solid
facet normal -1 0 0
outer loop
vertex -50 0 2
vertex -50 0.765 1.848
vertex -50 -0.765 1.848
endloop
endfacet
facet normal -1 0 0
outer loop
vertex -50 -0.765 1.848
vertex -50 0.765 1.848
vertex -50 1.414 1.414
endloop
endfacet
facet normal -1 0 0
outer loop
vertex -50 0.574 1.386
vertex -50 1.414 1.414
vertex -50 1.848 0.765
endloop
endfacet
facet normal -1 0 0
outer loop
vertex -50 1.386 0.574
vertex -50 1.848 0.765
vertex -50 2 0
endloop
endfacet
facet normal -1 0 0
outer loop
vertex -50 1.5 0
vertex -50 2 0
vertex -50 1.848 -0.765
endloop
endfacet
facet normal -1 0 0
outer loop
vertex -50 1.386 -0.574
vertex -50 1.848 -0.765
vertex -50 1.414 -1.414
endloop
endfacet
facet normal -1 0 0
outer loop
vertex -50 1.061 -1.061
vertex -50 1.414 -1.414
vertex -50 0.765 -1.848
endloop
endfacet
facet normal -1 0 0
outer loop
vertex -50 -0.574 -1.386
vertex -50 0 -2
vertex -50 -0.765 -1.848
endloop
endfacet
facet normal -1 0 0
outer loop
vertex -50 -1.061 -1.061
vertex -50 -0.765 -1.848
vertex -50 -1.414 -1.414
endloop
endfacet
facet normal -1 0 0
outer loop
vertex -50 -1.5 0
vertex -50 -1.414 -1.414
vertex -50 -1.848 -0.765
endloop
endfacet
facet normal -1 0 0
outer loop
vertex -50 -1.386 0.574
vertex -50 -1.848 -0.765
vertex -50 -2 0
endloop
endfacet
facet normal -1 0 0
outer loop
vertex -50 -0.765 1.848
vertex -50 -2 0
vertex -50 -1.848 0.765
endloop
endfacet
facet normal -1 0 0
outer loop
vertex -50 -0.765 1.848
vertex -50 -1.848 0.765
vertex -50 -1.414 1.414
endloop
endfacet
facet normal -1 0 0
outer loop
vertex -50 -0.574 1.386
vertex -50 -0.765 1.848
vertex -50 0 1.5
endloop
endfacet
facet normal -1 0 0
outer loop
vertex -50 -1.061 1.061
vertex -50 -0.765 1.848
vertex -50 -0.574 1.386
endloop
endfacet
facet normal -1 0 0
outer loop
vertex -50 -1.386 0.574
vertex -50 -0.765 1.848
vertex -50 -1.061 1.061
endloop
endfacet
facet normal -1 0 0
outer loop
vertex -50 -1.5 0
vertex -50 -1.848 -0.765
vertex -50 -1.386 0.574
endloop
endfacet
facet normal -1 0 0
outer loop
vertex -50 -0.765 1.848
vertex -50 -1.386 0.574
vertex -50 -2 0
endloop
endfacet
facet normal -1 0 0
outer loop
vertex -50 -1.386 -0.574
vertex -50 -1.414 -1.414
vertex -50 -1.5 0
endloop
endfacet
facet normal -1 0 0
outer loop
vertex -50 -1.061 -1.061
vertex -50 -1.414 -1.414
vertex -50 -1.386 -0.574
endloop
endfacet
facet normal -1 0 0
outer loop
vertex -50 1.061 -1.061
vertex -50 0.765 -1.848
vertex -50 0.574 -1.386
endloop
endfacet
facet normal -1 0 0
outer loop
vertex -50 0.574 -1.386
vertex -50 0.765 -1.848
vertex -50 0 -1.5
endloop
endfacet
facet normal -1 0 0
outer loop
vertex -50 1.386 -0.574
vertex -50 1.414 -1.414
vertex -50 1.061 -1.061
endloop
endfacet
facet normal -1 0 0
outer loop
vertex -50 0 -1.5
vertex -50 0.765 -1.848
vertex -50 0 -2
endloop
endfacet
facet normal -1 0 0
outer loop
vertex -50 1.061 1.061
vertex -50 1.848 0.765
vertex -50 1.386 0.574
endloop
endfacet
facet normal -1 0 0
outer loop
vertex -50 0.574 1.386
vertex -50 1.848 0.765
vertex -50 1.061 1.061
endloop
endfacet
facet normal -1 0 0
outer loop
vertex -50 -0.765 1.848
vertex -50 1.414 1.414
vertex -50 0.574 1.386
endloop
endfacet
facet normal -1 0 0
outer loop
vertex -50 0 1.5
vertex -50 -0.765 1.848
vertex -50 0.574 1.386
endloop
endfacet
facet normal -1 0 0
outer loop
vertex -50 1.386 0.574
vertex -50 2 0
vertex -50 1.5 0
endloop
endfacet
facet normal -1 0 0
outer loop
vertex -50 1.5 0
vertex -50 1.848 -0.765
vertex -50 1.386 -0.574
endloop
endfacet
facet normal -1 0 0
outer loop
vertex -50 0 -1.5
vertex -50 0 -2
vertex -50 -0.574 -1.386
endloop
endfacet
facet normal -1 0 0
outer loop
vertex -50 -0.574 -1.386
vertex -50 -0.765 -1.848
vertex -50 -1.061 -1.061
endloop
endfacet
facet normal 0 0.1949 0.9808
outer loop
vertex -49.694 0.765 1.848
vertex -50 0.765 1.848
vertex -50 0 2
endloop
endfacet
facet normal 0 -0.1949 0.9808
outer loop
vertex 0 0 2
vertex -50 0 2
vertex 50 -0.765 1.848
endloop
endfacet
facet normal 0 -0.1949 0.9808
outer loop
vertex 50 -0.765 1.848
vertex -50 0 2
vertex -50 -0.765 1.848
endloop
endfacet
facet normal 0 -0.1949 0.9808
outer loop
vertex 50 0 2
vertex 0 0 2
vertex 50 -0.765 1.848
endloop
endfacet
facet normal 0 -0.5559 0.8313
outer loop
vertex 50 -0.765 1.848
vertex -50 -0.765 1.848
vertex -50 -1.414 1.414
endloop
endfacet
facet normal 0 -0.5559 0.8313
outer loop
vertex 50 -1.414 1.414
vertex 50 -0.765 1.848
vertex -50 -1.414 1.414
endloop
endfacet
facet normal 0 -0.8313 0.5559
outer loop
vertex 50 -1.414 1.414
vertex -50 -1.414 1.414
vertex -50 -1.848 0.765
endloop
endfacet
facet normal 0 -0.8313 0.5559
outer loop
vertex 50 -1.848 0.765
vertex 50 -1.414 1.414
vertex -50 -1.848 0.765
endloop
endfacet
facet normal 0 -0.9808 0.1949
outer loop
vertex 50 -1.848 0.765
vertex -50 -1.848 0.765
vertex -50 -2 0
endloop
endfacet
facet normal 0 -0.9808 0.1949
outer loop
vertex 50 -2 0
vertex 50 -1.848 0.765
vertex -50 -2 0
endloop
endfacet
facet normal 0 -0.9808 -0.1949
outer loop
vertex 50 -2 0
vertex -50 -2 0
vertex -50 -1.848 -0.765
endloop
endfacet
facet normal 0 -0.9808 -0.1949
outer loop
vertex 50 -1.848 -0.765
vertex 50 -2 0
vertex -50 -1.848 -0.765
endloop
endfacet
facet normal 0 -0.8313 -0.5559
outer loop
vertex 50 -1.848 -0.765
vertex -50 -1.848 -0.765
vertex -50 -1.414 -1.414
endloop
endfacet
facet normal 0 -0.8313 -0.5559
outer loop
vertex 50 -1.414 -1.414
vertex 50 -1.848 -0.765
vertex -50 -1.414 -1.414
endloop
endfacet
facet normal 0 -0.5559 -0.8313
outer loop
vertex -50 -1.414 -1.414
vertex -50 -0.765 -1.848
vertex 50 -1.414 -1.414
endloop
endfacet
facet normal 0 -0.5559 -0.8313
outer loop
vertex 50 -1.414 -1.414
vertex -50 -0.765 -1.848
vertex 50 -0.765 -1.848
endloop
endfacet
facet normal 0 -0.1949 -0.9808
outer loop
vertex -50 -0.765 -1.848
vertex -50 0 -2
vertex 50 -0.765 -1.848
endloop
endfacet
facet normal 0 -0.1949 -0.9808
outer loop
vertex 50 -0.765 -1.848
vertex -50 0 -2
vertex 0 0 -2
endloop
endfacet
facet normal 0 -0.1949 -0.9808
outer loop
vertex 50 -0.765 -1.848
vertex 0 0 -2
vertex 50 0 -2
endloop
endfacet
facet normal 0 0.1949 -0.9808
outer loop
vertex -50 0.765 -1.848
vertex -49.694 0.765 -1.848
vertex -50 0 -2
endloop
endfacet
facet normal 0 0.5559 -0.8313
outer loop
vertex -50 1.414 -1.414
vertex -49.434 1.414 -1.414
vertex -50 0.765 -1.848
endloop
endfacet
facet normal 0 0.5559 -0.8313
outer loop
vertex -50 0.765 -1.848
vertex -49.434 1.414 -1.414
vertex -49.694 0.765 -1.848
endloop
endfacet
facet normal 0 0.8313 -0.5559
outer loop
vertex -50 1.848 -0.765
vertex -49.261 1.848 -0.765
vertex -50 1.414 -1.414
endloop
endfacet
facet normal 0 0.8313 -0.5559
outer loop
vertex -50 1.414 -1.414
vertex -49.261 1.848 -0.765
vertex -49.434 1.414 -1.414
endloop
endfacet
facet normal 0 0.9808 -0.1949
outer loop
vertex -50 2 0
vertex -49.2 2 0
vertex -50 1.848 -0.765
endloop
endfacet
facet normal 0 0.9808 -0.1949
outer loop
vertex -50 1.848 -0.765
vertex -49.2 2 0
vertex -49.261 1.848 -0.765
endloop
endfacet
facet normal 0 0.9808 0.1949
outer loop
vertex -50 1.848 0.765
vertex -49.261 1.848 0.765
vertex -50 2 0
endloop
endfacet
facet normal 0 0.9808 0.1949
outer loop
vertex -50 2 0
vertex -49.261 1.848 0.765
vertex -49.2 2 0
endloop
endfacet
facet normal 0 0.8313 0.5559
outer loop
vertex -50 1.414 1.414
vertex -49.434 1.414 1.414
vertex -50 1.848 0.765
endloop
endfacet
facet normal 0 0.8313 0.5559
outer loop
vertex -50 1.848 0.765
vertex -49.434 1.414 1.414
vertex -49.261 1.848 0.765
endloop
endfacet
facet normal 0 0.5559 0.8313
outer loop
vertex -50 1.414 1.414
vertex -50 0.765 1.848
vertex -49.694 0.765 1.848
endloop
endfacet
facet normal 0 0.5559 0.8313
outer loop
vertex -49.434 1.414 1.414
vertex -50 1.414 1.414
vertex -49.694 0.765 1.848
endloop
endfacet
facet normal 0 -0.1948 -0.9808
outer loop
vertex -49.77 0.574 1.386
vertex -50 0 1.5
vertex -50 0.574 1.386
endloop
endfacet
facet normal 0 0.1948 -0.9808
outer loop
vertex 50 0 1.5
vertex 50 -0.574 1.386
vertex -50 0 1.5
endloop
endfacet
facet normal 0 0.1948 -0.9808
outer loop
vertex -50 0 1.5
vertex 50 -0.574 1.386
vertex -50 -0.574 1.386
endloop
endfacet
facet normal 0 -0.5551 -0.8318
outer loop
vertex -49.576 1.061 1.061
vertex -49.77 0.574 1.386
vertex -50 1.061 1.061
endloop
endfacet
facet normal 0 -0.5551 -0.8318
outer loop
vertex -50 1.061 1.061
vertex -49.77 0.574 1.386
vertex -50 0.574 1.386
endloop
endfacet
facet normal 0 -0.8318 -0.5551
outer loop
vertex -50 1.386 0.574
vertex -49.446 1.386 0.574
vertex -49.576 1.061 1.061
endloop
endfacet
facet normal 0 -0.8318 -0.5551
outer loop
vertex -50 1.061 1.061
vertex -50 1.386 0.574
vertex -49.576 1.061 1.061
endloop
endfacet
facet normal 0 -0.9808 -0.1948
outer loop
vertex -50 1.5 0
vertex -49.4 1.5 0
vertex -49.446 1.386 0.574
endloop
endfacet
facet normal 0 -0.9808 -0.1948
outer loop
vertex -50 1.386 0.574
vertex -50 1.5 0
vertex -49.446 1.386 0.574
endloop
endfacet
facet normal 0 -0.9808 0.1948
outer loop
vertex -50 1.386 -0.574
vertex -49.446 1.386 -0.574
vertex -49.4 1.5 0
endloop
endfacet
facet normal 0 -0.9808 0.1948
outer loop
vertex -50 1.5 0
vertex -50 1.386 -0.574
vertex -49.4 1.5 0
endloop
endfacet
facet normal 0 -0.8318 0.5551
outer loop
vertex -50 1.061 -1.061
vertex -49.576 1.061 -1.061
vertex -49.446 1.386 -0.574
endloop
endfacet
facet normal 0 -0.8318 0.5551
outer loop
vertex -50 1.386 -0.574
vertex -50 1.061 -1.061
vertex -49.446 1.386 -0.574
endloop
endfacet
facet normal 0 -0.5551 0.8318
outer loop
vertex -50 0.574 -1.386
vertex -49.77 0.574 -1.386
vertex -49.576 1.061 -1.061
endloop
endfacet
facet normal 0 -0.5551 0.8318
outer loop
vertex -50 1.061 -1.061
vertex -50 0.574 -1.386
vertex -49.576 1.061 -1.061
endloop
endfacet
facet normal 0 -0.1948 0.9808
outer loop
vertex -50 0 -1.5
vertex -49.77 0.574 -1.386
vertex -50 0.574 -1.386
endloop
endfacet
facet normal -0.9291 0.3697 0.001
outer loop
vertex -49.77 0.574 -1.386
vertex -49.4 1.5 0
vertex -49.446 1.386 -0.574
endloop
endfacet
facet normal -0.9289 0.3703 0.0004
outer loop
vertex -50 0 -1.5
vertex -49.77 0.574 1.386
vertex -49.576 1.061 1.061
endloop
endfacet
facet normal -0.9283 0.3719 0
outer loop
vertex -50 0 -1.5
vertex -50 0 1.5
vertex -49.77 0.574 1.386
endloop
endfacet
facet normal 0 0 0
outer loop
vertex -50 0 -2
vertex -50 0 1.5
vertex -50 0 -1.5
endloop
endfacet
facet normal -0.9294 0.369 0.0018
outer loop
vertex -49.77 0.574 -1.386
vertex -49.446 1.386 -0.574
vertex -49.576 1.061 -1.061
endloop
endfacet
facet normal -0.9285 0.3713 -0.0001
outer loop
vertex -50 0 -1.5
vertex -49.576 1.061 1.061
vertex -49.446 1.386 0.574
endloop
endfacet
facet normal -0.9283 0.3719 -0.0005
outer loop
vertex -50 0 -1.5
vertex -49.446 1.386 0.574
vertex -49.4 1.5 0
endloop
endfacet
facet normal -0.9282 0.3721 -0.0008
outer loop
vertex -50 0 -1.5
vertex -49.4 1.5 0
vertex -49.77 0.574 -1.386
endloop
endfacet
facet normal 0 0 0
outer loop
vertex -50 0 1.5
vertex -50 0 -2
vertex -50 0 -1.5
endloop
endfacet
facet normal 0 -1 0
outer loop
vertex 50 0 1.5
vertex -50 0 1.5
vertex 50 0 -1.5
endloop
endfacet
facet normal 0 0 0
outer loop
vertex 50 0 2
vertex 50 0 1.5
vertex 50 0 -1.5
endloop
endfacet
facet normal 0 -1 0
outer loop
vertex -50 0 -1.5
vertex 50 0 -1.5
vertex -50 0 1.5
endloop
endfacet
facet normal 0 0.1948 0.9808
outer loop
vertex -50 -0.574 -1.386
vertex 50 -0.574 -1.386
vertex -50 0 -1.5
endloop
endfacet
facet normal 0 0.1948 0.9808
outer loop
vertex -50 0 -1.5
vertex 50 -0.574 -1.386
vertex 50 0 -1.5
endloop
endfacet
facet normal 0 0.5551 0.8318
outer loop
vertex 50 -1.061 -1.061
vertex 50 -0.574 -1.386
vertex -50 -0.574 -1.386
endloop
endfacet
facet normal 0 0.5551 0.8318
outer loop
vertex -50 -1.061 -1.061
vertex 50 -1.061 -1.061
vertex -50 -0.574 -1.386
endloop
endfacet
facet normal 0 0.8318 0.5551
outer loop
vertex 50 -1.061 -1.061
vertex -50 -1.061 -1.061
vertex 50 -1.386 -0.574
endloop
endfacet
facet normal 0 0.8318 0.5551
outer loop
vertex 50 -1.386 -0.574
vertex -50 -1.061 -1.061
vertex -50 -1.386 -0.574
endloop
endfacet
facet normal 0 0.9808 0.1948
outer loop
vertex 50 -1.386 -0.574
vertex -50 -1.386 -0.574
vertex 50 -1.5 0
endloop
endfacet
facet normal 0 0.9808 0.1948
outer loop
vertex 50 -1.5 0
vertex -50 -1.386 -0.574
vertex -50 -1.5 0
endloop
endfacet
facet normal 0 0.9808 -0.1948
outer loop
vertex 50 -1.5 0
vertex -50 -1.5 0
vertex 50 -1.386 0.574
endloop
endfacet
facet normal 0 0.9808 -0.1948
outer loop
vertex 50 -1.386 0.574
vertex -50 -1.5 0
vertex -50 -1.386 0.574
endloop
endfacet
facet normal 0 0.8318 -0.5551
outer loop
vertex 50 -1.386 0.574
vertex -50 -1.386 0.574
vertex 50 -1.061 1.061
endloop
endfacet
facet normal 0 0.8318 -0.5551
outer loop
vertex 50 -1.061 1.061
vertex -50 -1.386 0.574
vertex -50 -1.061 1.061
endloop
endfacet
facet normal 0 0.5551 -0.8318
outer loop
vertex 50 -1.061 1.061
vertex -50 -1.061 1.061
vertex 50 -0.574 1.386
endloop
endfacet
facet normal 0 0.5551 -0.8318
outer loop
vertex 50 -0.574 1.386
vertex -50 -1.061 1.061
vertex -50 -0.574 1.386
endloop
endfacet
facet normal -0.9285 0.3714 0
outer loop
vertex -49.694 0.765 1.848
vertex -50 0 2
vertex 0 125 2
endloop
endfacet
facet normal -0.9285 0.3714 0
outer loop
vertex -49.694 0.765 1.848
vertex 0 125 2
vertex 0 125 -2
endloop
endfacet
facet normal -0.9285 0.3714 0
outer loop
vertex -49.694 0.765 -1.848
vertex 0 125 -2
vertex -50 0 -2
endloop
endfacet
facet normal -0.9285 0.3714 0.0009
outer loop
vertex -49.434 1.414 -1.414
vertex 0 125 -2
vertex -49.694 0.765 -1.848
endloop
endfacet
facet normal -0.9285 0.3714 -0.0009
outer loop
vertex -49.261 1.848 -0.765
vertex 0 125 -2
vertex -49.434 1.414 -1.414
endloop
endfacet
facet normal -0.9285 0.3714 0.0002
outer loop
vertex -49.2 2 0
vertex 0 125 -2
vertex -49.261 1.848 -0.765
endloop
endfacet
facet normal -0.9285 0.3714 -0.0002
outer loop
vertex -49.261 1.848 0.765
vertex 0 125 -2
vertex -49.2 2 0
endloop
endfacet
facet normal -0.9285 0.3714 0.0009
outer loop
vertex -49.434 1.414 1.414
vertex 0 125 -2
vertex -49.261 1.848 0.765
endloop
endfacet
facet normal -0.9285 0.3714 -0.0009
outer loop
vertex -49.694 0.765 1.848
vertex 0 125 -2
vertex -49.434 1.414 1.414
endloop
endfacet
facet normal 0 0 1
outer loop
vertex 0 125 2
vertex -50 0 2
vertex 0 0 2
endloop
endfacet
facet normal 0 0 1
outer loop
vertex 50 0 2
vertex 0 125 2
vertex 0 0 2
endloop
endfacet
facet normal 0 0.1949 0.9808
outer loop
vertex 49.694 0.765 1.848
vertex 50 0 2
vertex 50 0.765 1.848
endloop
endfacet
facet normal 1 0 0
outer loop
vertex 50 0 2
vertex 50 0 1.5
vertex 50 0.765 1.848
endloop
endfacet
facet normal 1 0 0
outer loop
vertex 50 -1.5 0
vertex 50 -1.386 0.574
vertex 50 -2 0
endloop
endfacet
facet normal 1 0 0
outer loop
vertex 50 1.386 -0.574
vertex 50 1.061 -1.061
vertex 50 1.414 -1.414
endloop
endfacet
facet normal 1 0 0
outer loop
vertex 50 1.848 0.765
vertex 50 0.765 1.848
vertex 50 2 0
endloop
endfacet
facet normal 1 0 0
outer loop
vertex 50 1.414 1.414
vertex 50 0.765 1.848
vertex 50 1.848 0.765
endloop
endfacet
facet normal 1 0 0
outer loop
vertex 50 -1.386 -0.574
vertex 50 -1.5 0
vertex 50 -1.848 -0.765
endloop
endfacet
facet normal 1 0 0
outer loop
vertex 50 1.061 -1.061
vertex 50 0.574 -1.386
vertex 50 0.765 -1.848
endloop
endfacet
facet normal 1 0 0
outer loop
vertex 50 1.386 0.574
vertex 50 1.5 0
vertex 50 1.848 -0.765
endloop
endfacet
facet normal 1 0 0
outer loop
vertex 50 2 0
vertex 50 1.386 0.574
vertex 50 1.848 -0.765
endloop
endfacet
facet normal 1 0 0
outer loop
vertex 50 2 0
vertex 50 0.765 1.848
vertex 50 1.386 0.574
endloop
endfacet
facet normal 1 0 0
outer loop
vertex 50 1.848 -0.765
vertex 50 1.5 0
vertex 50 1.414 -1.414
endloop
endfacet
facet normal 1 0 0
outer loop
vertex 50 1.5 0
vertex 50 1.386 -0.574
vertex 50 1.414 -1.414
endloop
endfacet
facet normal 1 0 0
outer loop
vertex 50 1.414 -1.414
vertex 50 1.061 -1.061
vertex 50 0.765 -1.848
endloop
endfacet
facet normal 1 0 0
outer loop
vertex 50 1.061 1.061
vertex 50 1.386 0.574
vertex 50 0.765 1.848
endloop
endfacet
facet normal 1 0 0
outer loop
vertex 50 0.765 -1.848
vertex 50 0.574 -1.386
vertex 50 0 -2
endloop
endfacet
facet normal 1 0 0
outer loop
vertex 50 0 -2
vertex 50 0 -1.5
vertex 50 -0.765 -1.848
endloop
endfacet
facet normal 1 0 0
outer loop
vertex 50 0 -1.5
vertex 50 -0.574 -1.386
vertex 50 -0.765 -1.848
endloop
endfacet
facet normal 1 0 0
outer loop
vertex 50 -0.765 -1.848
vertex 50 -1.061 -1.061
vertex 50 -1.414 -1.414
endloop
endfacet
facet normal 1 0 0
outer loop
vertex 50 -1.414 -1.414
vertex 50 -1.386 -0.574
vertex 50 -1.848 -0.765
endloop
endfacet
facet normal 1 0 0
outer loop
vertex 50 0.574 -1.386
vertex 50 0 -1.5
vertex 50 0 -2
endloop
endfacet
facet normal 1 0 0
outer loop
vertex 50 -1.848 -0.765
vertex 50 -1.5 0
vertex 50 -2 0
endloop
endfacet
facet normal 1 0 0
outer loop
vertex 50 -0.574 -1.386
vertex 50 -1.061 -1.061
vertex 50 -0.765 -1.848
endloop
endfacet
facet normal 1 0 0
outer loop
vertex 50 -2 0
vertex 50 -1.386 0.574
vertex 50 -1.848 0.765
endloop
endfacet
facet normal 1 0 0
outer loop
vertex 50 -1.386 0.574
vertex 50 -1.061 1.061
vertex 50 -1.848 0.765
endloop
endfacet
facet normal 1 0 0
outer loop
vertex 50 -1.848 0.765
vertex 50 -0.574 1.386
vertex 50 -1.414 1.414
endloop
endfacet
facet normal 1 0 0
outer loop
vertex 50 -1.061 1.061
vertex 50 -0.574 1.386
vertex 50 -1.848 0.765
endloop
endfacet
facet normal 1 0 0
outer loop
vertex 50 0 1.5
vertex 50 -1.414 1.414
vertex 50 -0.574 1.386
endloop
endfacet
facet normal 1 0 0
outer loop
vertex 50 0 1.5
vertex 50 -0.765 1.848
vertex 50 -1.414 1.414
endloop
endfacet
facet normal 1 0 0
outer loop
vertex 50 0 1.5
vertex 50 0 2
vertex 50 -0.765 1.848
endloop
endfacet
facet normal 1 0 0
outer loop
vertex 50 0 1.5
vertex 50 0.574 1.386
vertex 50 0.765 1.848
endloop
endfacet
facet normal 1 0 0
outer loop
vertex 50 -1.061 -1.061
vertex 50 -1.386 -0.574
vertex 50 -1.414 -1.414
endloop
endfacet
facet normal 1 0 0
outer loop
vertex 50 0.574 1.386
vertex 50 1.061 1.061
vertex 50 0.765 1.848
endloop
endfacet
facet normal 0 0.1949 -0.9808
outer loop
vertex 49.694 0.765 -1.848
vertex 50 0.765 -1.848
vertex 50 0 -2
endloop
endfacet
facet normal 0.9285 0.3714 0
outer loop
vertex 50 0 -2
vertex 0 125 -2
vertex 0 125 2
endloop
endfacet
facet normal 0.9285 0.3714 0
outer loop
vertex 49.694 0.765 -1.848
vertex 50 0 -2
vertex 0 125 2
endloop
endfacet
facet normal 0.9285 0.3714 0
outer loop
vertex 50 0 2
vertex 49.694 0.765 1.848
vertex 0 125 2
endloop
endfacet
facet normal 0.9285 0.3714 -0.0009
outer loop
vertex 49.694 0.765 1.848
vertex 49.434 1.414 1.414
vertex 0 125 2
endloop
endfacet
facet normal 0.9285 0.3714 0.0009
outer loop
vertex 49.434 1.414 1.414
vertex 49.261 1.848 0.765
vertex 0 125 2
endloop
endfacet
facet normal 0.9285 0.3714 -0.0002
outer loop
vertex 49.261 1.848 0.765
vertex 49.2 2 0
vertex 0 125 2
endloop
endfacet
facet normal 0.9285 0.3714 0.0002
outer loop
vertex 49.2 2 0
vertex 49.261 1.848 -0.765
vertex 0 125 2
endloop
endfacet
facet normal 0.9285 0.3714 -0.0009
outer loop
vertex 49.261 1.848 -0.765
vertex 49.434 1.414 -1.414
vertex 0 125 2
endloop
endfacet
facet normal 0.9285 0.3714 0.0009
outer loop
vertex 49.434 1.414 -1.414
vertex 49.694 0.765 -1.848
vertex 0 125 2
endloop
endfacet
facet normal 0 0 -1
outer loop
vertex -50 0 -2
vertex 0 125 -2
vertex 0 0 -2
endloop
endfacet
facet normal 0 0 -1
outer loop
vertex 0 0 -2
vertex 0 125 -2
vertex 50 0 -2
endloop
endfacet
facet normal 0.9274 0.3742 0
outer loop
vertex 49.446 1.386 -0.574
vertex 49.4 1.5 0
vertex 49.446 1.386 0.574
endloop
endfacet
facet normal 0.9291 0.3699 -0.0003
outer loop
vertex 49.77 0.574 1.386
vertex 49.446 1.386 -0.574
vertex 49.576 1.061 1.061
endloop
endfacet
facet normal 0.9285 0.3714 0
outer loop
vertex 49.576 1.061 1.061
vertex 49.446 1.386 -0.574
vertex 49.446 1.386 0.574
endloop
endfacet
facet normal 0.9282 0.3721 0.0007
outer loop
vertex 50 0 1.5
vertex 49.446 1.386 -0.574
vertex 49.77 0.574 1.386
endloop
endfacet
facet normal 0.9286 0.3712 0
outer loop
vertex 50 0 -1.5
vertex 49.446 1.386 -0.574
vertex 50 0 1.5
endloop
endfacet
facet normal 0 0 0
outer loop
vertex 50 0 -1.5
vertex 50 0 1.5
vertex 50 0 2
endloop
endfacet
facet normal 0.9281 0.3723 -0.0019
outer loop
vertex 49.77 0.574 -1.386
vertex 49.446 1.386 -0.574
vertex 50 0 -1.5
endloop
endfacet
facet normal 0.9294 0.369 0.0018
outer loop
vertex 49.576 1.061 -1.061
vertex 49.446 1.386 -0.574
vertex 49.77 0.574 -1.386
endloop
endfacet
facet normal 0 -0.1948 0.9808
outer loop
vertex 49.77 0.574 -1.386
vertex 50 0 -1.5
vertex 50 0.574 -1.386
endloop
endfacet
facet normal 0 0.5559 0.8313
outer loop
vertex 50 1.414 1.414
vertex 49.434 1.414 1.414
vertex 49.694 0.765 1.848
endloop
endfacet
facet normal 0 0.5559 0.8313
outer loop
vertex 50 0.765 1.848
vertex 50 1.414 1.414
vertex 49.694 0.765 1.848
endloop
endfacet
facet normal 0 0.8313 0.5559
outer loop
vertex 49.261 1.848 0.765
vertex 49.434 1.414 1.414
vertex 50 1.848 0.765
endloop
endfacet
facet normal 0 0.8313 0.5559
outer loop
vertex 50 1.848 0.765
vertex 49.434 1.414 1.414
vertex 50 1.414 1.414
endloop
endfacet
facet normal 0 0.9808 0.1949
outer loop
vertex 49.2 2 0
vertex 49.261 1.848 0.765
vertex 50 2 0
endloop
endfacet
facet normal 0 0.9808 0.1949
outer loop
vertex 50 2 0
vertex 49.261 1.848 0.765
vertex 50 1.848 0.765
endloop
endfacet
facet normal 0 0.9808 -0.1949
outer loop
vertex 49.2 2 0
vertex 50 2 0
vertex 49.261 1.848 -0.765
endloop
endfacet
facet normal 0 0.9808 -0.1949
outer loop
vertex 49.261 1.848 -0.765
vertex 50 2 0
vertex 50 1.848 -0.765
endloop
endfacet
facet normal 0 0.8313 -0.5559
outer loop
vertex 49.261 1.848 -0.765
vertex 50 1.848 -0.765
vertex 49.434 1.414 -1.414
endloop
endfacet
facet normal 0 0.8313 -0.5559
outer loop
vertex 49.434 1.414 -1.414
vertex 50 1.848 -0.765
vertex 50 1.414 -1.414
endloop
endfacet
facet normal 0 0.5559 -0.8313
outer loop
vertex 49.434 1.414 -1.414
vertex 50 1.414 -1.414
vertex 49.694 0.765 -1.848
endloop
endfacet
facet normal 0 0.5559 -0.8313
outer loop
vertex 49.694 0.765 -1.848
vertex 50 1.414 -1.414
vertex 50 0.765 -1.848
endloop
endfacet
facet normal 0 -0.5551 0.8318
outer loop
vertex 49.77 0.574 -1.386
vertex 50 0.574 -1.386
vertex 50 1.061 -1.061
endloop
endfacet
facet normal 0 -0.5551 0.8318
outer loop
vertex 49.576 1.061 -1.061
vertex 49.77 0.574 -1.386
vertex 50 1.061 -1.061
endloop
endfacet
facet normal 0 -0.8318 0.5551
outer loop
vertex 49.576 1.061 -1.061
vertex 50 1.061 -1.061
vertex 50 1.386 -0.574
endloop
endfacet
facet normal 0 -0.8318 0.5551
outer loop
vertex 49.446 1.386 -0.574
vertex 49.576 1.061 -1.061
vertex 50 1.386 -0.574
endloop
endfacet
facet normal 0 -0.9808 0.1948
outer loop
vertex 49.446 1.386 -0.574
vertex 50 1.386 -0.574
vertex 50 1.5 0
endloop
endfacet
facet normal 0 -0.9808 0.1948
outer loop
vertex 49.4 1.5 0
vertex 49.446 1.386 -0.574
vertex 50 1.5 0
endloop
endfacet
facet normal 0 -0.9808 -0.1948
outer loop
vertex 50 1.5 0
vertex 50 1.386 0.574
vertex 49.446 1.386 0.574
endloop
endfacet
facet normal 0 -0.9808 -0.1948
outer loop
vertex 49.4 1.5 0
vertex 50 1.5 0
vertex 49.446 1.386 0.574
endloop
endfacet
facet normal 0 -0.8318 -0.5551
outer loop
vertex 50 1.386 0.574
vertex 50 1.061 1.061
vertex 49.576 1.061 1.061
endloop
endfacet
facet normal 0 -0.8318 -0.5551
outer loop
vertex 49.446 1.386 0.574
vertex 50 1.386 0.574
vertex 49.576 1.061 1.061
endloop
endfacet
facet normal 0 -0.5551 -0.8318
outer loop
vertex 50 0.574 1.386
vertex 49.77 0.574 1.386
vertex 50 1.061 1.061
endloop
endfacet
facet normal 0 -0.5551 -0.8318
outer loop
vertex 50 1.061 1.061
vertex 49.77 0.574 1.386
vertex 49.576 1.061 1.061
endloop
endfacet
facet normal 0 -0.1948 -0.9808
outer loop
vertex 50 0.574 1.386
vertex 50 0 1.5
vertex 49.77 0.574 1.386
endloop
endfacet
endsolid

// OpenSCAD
//Bunting
linear_extrude(height = 4, center = true, convexity = 10, twist = 0)
polygon(points=[[-50,0],[50,0],[0,125]]);

	rotate([0, 90, 0])
	translate([0, 0, 0])
difference() {
  cylinder(h = 100, r = 2, $fn=16, center = true);
  rotate([0, 0, 0])
    cylinder(100, r = 1.5, $fn=16, center = true);
}
